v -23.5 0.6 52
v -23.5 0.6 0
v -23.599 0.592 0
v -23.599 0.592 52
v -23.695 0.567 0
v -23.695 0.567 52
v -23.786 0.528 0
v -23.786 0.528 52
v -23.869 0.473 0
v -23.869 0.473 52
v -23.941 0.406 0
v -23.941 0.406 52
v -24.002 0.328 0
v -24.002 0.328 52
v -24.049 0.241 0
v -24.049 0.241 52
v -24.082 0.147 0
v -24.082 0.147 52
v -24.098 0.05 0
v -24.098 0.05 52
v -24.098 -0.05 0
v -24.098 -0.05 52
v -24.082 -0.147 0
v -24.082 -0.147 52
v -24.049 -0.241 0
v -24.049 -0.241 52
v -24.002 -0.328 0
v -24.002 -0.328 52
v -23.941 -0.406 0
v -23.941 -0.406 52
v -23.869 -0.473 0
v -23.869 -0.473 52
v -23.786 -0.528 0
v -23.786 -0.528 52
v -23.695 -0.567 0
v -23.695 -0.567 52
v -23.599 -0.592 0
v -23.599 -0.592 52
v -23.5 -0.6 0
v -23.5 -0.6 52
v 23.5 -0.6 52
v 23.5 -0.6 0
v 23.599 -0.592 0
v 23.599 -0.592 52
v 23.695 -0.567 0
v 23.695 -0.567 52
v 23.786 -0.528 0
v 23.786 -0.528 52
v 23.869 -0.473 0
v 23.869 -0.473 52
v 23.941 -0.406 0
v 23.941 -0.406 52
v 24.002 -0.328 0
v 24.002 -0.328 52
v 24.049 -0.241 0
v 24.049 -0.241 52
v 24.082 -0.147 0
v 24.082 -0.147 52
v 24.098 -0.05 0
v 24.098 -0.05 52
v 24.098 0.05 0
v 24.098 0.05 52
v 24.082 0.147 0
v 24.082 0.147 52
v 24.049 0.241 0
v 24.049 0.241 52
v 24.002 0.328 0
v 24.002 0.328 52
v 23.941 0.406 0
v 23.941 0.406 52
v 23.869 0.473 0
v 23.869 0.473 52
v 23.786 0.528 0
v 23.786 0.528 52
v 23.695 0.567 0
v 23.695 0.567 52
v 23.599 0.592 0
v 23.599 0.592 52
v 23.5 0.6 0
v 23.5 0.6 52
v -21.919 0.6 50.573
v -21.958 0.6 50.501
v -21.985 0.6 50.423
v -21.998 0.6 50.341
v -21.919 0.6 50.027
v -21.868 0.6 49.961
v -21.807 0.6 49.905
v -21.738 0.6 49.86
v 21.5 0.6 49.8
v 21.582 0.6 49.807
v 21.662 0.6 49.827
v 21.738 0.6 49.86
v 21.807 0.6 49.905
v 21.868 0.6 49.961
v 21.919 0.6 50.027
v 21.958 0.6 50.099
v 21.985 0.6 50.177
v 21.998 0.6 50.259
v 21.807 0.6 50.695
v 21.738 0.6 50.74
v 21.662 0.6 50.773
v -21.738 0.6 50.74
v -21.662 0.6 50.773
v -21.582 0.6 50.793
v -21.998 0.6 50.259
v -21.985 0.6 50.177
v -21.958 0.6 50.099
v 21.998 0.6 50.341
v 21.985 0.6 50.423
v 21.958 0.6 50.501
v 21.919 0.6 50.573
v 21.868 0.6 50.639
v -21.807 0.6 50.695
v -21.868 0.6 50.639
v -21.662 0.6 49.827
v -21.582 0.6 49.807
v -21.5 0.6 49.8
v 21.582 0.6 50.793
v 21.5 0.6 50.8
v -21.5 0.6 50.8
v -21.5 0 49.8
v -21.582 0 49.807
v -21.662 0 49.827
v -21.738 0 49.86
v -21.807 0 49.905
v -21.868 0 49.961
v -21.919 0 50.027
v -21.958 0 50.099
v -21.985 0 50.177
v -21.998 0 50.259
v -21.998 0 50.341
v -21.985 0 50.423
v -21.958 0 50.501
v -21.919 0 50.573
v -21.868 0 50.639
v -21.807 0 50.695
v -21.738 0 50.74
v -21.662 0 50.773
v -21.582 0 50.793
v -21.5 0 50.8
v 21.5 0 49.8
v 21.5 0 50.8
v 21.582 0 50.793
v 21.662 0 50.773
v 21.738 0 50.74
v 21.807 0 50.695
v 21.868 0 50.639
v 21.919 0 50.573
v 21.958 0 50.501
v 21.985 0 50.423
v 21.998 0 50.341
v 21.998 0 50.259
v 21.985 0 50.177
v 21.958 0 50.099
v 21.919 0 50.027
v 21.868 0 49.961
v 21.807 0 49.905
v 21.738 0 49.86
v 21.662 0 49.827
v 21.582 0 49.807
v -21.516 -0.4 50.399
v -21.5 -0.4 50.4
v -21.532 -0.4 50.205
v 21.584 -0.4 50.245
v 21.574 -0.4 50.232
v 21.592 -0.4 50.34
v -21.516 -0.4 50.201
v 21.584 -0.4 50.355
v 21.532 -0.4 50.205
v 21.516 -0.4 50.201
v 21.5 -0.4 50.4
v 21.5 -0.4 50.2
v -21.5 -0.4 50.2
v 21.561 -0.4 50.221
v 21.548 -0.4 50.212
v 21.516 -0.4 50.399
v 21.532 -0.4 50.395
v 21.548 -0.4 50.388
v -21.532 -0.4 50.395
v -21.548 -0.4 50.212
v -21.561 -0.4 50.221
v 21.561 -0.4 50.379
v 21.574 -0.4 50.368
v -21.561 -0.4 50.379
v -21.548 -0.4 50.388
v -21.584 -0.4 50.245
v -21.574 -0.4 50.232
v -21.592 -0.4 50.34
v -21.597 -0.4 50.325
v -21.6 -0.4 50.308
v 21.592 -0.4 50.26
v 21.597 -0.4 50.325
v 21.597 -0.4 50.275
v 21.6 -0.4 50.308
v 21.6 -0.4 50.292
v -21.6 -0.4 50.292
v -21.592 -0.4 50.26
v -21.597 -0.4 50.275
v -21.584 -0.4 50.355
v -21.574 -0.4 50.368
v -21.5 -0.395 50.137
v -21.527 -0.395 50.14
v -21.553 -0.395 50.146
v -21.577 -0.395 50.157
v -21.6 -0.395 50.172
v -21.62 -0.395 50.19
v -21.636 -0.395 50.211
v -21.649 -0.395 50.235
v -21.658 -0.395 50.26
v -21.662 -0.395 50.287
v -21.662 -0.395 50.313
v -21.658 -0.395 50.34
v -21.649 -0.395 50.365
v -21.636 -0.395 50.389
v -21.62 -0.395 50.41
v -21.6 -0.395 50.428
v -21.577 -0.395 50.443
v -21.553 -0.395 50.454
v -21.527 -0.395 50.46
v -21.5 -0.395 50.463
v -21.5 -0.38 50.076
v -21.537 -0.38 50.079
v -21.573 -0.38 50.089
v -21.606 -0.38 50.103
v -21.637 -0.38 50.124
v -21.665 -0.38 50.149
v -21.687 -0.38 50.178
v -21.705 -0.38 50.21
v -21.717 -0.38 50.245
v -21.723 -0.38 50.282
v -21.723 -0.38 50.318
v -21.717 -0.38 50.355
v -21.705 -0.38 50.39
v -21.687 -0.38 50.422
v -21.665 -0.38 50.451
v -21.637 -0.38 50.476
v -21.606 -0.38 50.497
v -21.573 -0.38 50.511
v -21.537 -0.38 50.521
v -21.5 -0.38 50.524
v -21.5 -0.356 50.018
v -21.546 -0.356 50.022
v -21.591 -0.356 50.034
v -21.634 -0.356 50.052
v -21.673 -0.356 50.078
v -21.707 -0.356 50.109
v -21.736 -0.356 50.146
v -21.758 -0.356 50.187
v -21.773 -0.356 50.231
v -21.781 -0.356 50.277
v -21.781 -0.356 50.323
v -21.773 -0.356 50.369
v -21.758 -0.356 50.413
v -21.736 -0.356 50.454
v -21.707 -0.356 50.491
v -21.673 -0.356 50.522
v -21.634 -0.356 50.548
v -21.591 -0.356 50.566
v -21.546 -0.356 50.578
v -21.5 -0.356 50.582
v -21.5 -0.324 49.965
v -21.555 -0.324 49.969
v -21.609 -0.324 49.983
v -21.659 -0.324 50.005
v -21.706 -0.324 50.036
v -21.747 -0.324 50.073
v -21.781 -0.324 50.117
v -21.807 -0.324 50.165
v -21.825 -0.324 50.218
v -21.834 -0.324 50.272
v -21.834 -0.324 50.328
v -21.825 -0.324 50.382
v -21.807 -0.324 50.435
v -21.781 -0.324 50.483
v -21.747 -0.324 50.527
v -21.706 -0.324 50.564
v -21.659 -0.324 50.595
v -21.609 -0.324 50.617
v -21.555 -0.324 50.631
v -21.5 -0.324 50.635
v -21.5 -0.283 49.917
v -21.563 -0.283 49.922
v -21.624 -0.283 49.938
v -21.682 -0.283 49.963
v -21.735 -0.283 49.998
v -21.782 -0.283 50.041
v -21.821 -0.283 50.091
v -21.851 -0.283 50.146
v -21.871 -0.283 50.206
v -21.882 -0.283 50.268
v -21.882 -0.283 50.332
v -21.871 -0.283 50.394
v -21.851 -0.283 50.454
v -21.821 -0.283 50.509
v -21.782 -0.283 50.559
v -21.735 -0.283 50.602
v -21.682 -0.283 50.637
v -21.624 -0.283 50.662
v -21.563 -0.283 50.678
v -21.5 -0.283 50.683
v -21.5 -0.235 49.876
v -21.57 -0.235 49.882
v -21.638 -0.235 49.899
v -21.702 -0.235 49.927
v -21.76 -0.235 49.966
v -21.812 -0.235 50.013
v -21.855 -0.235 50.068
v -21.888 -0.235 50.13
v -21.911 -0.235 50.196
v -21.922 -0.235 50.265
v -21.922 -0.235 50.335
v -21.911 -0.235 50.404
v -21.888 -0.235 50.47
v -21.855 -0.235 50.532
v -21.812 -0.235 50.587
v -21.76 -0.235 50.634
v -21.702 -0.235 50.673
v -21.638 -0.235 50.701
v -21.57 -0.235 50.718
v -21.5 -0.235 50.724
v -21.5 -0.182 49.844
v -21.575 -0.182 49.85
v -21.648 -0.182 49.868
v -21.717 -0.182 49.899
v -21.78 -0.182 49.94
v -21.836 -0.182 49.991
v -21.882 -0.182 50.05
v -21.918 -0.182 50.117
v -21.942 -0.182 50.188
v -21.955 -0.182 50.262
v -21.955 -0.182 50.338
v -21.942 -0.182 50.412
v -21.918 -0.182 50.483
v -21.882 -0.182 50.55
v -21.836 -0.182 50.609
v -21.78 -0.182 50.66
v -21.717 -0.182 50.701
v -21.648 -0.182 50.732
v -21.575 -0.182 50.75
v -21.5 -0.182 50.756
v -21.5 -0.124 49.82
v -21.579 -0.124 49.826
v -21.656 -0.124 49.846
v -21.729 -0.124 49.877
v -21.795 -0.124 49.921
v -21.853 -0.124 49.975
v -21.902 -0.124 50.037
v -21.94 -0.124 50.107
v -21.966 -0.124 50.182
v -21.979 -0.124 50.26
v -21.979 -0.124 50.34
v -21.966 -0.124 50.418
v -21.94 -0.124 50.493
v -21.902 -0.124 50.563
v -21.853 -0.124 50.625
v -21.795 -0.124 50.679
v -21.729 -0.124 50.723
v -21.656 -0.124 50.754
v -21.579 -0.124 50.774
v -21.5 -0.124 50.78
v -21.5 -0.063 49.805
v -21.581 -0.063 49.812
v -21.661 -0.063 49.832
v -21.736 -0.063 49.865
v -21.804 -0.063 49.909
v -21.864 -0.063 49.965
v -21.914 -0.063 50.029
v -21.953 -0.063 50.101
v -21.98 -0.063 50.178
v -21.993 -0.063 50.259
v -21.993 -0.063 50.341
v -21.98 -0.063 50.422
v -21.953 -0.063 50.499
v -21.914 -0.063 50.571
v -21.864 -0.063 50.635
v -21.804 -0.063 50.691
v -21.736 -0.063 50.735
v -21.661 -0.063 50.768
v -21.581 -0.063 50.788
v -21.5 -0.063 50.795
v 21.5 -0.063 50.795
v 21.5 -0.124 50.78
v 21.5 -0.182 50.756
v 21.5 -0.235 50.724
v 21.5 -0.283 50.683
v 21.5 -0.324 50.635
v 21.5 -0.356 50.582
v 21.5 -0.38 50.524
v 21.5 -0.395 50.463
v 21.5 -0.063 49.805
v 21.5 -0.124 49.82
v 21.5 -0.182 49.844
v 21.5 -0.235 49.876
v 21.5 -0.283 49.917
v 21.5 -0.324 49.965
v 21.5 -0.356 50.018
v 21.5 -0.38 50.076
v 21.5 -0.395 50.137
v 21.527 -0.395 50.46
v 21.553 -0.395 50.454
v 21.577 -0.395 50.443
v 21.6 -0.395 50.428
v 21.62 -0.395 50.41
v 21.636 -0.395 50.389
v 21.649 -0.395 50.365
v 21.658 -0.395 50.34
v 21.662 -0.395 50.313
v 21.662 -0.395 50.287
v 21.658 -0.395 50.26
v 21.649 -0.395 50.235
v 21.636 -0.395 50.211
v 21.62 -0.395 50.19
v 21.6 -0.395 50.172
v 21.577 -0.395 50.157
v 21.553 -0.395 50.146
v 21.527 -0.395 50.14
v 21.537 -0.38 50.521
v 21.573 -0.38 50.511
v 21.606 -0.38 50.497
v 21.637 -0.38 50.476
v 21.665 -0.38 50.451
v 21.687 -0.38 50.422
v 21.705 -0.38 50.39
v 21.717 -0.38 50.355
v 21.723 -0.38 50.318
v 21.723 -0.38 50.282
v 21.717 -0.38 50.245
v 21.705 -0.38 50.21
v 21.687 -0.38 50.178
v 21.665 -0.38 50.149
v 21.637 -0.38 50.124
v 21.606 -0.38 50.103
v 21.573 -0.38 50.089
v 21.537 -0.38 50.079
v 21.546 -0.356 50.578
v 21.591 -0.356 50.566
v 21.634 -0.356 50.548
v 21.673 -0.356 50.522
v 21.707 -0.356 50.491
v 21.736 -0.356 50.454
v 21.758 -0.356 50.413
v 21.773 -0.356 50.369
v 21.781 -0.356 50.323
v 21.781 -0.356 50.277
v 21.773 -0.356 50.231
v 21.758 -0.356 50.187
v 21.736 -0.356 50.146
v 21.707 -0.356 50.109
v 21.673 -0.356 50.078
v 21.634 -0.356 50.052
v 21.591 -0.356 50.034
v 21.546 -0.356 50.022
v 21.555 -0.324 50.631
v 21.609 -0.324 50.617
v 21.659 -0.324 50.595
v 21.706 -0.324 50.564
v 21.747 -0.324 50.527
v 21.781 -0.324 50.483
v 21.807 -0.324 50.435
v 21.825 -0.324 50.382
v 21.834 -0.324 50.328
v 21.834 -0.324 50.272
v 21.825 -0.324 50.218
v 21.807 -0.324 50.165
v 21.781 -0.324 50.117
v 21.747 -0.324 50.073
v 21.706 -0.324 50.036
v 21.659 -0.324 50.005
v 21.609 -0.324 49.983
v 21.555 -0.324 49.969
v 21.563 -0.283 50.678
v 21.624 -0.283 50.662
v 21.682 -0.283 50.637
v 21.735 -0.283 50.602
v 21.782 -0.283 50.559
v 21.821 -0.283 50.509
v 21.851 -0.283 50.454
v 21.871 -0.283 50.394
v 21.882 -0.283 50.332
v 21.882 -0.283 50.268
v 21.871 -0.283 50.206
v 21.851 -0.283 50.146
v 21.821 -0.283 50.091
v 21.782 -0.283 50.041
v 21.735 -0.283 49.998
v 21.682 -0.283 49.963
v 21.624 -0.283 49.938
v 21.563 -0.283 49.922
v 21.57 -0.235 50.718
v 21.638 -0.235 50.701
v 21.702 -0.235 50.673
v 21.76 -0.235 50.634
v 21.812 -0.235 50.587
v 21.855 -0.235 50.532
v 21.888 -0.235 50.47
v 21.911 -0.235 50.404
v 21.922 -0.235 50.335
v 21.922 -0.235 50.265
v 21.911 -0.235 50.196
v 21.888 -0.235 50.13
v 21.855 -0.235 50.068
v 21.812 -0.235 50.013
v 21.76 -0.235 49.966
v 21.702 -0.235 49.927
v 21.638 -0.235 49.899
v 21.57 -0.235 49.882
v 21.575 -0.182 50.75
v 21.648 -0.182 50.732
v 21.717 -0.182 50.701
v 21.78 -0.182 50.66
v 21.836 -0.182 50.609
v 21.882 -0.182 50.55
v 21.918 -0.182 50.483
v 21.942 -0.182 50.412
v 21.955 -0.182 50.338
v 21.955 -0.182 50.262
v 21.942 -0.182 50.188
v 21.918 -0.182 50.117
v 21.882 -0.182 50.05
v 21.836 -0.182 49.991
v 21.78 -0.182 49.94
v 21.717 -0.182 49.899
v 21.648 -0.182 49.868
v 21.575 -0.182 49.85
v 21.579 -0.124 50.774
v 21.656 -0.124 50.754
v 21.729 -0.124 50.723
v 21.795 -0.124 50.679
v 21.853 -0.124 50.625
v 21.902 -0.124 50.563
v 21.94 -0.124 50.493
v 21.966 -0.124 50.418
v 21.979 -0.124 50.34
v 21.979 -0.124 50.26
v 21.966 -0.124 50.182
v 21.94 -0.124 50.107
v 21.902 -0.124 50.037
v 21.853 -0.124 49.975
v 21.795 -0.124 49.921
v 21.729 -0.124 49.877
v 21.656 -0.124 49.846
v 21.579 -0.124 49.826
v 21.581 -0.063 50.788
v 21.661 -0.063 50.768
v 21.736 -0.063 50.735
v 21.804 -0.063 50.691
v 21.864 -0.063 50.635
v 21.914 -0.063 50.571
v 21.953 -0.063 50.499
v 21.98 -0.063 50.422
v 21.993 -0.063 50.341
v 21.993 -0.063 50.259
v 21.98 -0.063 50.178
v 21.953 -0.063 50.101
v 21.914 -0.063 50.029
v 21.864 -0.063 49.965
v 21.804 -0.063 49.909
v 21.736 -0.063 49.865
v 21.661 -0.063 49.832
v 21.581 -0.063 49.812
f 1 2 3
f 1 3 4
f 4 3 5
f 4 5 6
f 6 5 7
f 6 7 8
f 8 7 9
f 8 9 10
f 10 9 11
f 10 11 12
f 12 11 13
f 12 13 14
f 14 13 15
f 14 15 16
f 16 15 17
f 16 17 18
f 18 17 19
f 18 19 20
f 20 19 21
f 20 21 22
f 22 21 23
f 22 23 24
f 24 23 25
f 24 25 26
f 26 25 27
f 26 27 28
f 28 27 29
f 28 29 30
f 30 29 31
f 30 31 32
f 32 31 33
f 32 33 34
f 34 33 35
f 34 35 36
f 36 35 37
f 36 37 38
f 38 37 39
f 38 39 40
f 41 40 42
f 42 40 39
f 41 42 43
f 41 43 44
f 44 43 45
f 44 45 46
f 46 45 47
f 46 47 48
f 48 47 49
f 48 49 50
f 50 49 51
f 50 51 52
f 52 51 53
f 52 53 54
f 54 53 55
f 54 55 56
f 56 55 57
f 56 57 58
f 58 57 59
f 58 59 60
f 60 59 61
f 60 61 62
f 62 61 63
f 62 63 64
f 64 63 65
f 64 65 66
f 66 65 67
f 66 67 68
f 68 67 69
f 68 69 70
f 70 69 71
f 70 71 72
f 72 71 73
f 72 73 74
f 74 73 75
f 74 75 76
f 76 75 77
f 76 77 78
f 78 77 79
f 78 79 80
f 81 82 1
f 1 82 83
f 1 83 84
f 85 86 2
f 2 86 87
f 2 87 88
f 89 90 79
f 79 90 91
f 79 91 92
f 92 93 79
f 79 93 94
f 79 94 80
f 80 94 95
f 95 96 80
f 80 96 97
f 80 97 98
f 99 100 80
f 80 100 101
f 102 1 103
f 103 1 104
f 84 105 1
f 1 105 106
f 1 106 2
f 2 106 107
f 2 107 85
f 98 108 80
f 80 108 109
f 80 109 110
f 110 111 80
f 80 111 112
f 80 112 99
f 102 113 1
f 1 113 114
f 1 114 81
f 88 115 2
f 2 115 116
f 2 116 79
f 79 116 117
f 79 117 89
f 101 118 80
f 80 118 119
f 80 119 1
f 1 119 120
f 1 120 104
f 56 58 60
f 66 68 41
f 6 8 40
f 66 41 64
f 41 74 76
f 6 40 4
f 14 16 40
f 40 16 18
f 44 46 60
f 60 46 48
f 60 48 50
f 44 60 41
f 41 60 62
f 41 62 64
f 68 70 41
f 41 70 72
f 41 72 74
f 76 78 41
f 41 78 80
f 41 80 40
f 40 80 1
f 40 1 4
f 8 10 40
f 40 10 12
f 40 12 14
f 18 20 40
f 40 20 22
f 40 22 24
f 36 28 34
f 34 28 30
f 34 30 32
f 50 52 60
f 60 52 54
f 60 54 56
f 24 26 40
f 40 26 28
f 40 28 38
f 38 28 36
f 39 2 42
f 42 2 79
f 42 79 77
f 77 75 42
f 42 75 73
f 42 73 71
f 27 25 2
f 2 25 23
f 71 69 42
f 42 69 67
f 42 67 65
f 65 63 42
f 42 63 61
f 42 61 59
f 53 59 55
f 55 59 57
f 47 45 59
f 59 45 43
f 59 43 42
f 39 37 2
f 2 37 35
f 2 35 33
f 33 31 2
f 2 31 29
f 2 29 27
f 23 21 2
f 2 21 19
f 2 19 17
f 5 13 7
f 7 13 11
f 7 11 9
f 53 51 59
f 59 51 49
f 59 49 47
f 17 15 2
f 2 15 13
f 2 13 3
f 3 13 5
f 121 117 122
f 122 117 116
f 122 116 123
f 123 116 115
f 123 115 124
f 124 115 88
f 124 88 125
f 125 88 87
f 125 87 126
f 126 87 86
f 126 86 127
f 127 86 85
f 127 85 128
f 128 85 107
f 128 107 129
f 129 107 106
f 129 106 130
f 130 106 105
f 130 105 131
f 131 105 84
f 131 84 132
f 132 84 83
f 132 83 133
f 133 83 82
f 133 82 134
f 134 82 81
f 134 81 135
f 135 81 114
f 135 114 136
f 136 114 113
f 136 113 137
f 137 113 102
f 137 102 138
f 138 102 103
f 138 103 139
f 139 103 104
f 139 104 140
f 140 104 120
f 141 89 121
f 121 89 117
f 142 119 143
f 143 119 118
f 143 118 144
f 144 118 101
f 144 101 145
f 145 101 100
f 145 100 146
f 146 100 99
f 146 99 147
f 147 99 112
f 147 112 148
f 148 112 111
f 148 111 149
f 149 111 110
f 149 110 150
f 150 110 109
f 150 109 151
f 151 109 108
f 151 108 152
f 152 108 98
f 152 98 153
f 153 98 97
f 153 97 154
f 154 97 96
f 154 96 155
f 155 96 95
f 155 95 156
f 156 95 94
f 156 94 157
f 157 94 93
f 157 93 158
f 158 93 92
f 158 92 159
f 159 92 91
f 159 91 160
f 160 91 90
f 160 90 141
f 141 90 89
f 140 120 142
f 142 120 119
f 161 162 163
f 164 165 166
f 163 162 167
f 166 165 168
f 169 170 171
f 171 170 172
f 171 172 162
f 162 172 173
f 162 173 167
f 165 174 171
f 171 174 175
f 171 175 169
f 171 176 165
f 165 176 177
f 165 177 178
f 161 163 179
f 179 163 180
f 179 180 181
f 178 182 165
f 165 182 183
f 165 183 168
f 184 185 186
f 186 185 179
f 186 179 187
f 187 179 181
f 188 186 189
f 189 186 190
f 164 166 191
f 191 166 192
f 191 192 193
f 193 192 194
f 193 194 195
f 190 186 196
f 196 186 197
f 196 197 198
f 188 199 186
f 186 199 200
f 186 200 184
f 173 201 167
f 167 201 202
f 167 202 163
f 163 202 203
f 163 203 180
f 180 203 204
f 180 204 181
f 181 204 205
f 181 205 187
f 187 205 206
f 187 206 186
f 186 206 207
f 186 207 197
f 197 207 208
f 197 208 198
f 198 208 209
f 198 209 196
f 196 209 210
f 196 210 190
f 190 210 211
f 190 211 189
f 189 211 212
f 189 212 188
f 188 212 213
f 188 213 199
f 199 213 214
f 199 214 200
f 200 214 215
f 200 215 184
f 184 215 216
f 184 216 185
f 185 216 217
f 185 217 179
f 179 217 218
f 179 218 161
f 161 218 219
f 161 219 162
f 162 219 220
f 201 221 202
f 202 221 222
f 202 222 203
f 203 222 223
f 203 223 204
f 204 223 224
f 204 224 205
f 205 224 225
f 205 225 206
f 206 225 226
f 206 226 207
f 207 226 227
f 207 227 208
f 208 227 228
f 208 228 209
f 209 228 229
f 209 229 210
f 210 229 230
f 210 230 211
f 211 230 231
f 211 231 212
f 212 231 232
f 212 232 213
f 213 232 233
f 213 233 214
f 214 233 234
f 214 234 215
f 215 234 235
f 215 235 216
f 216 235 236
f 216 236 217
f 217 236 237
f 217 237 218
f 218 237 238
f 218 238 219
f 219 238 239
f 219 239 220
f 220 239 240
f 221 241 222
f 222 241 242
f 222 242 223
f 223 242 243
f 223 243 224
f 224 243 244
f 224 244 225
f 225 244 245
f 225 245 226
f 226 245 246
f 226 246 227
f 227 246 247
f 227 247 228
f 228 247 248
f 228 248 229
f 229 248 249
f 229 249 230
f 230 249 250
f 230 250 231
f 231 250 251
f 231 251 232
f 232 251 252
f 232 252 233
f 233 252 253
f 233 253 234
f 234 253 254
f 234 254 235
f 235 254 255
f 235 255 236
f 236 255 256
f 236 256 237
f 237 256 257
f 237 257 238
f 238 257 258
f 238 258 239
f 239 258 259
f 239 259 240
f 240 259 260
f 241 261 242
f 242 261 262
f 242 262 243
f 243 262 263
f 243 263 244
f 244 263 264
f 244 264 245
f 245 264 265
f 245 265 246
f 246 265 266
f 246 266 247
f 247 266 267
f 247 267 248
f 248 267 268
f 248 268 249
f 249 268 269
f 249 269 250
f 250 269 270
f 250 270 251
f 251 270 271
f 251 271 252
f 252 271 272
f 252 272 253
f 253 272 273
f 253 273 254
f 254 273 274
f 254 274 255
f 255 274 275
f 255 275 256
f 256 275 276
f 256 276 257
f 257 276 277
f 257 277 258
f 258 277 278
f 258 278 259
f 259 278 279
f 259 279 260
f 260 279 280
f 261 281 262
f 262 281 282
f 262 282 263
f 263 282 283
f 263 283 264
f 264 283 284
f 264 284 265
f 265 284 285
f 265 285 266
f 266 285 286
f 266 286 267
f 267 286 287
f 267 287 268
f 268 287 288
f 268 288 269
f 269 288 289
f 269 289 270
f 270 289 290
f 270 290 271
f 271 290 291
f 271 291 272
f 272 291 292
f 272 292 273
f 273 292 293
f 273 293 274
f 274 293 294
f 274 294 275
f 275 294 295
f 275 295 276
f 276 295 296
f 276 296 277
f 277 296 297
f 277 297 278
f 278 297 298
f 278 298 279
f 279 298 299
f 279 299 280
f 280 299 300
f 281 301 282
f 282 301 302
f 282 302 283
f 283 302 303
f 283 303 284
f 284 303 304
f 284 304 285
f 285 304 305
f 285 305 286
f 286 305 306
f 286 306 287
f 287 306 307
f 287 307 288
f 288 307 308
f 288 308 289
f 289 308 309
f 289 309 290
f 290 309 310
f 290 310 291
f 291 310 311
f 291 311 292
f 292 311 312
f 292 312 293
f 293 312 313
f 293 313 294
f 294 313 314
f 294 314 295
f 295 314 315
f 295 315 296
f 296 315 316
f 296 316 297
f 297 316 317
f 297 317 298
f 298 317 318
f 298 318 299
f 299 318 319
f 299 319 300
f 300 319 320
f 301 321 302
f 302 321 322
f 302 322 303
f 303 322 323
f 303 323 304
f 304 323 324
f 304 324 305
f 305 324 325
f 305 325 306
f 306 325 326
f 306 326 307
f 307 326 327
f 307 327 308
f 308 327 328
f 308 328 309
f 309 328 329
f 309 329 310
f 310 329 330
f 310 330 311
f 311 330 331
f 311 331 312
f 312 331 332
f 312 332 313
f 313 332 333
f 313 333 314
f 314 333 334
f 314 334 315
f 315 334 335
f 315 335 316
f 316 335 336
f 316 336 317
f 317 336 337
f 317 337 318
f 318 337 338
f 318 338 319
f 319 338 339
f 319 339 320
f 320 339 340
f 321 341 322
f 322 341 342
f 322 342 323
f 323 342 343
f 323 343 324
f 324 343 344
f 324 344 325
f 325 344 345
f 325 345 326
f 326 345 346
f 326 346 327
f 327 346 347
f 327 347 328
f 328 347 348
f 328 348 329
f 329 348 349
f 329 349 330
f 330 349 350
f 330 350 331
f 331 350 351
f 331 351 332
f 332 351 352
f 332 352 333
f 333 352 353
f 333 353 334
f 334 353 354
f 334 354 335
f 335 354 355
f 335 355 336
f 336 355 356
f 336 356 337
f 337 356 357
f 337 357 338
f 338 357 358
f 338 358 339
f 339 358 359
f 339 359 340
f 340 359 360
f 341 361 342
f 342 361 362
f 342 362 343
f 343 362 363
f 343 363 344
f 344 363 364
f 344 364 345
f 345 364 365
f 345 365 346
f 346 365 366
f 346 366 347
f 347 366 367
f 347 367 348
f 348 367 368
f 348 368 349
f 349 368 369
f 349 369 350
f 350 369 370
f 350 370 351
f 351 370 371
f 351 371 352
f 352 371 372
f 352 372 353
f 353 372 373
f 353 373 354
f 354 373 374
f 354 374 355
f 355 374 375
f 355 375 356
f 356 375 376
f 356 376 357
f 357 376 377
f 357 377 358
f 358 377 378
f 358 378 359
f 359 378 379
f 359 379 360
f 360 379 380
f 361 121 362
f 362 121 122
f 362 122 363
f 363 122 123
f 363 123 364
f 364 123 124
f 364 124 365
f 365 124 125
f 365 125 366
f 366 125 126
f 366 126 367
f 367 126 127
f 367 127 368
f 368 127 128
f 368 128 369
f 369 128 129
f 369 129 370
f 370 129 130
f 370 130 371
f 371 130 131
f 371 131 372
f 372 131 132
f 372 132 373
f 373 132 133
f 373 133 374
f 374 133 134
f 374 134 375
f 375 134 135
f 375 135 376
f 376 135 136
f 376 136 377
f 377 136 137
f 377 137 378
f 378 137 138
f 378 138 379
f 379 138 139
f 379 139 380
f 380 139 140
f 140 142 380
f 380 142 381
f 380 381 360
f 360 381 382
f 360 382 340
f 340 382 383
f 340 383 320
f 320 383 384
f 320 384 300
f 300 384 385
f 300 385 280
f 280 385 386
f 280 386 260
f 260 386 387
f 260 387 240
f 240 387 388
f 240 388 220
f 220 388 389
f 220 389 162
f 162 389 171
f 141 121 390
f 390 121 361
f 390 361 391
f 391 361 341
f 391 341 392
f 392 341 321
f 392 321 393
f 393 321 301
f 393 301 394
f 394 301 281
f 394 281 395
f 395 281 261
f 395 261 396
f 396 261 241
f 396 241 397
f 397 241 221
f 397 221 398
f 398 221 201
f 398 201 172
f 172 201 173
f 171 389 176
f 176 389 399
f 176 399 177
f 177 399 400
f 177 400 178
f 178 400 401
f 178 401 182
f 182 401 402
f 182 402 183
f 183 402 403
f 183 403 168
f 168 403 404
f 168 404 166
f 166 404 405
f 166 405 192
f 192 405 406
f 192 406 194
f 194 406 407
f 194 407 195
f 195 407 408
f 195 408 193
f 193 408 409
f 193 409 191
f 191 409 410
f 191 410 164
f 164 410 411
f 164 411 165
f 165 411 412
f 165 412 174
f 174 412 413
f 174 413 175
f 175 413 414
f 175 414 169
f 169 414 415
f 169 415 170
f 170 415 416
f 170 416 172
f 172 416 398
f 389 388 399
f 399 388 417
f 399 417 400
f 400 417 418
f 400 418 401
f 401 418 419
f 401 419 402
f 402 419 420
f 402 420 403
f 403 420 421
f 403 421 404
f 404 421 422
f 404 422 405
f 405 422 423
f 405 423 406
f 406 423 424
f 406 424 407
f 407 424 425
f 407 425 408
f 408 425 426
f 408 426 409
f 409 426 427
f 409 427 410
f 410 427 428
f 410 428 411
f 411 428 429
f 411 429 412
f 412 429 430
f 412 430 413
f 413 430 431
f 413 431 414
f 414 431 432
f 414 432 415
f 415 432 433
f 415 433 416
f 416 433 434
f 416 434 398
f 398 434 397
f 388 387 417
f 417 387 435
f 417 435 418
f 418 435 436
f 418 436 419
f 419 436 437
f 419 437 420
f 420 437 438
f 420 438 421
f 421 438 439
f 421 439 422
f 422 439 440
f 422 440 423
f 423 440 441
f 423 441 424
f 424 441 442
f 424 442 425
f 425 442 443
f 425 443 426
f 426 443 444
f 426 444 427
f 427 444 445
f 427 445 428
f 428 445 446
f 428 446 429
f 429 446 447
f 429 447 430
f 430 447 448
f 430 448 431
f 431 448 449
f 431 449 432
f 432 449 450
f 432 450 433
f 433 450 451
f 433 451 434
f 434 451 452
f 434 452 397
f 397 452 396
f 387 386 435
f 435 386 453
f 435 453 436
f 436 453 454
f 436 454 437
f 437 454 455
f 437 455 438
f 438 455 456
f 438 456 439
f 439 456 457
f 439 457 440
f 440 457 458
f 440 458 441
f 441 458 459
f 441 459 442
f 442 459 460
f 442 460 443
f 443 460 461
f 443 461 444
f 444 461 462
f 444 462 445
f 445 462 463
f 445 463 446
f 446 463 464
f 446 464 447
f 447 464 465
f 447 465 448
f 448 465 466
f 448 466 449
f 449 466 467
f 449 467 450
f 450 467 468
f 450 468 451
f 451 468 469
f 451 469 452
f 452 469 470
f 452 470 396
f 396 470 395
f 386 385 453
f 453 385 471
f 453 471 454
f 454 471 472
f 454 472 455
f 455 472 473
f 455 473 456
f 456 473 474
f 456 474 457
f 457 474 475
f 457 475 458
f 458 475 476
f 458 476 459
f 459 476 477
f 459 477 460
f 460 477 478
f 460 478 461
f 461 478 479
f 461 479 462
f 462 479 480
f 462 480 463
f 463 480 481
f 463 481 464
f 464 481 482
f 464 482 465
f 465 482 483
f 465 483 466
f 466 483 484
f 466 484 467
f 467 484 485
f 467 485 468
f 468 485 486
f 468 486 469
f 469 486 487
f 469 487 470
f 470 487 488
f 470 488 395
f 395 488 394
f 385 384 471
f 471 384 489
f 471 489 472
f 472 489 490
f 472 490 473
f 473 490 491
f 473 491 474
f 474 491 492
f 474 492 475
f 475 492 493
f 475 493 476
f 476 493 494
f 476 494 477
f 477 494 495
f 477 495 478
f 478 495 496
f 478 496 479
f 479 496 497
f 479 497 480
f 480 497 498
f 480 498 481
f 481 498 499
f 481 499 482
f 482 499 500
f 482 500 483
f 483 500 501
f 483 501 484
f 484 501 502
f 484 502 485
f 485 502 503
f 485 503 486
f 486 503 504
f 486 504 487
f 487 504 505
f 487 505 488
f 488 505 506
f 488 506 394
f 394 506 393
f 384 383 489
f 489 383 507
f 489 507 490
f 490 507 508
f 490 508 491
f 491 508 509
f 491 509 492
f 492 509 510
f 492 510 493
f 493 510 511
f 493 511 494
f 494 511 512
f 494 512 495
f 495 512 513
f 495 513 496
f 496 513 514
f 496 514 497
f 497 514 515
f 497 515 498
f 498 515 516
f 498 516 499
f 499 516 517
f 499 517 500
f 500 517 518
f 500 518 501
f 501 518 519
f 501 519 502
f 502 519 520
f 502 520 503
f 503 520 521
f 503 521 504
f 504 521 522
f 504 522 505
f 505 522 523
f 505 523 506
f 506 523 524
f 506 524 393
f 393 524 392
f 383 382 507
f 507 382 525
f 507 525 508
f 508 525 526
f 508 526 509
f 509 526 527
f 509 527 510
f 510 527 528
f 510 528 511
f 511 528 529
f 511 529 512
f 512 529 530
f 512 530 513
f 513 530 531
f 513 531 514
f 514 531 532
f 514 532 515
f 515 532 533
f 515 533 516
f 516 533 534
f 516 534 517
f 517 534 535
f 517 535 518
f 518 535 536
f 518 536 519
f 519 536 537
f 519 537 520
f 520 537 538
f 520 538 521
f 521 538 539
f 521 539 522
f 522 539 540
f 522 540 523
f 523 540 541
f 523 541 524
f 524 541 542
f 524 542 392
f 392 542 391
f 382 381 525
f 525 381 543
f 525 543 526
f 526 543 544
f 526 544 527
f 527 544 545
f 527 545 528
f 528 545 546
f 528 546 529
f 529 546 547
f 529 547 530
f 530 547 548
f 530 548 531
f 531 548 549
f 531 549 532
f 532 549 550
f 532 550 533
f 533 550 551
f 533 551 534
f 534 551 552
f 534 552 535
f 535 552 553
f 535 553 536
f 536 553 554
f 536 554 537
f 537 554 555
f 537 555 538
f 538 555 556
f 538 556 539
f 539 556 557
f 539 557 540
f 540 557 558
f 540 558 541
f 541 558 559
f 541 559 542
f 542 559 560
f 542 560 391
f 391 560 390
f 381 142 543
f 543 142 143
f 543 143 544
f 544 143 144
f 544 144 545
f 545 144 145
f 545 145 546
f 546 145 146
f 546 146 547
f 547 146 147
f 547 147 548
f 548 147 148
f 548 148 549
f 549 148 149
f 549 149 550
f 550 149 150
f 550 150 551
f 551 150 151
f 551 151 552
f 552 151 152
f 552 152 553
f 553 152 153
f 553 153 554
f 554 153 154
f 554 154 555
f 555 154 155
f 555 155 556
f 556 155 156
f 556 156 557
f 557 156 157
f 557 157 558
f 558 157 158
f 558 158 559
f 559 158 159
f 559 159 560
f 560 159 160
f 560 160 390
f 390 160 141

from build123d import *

# Parameters (mm, degrees)
AUFSATZ_LINEAR_AUSTRAGEN1_DEPTH = 52
SCHNITT_LINEAR_AUSTRAGEN1_DEPTH = 1
VERRUNDUNG2_R                   = 0.4


with BuildPart() as part:
    # Skizze1 → Aufsatz-Linear austragen1 (new body)
    with BuildSketch(Plane.XY):
        with BuildLine():
            Line((-23.5, 0.6), (23.5, 0.6))
            ThreePointArc((23.5, 0.6), (24.1, 0), (23.5, -0.6))
            Line((23.5, -0.6), (-23.5, -0.6))
            ThreePointArc((-23.5, -0.6), (-24.1, 0), (-23.5, 0.6))
        make_face()
    extrude(amount=AUFSATZ_LINEAR_AUSTRAGEN1_DEPTH)

    # Skizze2 → Schnitt-Linear austragen1 (cut)
    with BuildSketch(Plane(origin=(0, 0.6, 0), x_dir=(1, 0, 0), z_dir=(0, 1, 0))):
        with BuildLine():
            Line((-21.5, -49.8), (21.5, -49.8))
            ThreePointArc((21.5, -49.8), (22, -50.3), (21.5, -50.8))
            Line((21.5, -50.8), (-21.5, -50.8))
            ThreePointArc((-21.5, -50.8), (-22, -50.3), (-21.5, -49.8))
        make_face()
    extrude(amount=-SCHNITT_LINEAR_AUSTRAGEN1_DEPTH, mode=Mode.SUBTRACT)

    # Verrundung2
    verrundung2_edges = [part.edges().sort_by_distance(p)[0] for p in [
        (-22, -0.4, 50.3),
        (0, -0.4, 49.8),
        (22, -0.4, 50.3),
        (0, -0.4, 50.8),
    ]]
    fillet(verrundung2_edges, radius=VERRUNDUNG2_R)


solid = part.part
